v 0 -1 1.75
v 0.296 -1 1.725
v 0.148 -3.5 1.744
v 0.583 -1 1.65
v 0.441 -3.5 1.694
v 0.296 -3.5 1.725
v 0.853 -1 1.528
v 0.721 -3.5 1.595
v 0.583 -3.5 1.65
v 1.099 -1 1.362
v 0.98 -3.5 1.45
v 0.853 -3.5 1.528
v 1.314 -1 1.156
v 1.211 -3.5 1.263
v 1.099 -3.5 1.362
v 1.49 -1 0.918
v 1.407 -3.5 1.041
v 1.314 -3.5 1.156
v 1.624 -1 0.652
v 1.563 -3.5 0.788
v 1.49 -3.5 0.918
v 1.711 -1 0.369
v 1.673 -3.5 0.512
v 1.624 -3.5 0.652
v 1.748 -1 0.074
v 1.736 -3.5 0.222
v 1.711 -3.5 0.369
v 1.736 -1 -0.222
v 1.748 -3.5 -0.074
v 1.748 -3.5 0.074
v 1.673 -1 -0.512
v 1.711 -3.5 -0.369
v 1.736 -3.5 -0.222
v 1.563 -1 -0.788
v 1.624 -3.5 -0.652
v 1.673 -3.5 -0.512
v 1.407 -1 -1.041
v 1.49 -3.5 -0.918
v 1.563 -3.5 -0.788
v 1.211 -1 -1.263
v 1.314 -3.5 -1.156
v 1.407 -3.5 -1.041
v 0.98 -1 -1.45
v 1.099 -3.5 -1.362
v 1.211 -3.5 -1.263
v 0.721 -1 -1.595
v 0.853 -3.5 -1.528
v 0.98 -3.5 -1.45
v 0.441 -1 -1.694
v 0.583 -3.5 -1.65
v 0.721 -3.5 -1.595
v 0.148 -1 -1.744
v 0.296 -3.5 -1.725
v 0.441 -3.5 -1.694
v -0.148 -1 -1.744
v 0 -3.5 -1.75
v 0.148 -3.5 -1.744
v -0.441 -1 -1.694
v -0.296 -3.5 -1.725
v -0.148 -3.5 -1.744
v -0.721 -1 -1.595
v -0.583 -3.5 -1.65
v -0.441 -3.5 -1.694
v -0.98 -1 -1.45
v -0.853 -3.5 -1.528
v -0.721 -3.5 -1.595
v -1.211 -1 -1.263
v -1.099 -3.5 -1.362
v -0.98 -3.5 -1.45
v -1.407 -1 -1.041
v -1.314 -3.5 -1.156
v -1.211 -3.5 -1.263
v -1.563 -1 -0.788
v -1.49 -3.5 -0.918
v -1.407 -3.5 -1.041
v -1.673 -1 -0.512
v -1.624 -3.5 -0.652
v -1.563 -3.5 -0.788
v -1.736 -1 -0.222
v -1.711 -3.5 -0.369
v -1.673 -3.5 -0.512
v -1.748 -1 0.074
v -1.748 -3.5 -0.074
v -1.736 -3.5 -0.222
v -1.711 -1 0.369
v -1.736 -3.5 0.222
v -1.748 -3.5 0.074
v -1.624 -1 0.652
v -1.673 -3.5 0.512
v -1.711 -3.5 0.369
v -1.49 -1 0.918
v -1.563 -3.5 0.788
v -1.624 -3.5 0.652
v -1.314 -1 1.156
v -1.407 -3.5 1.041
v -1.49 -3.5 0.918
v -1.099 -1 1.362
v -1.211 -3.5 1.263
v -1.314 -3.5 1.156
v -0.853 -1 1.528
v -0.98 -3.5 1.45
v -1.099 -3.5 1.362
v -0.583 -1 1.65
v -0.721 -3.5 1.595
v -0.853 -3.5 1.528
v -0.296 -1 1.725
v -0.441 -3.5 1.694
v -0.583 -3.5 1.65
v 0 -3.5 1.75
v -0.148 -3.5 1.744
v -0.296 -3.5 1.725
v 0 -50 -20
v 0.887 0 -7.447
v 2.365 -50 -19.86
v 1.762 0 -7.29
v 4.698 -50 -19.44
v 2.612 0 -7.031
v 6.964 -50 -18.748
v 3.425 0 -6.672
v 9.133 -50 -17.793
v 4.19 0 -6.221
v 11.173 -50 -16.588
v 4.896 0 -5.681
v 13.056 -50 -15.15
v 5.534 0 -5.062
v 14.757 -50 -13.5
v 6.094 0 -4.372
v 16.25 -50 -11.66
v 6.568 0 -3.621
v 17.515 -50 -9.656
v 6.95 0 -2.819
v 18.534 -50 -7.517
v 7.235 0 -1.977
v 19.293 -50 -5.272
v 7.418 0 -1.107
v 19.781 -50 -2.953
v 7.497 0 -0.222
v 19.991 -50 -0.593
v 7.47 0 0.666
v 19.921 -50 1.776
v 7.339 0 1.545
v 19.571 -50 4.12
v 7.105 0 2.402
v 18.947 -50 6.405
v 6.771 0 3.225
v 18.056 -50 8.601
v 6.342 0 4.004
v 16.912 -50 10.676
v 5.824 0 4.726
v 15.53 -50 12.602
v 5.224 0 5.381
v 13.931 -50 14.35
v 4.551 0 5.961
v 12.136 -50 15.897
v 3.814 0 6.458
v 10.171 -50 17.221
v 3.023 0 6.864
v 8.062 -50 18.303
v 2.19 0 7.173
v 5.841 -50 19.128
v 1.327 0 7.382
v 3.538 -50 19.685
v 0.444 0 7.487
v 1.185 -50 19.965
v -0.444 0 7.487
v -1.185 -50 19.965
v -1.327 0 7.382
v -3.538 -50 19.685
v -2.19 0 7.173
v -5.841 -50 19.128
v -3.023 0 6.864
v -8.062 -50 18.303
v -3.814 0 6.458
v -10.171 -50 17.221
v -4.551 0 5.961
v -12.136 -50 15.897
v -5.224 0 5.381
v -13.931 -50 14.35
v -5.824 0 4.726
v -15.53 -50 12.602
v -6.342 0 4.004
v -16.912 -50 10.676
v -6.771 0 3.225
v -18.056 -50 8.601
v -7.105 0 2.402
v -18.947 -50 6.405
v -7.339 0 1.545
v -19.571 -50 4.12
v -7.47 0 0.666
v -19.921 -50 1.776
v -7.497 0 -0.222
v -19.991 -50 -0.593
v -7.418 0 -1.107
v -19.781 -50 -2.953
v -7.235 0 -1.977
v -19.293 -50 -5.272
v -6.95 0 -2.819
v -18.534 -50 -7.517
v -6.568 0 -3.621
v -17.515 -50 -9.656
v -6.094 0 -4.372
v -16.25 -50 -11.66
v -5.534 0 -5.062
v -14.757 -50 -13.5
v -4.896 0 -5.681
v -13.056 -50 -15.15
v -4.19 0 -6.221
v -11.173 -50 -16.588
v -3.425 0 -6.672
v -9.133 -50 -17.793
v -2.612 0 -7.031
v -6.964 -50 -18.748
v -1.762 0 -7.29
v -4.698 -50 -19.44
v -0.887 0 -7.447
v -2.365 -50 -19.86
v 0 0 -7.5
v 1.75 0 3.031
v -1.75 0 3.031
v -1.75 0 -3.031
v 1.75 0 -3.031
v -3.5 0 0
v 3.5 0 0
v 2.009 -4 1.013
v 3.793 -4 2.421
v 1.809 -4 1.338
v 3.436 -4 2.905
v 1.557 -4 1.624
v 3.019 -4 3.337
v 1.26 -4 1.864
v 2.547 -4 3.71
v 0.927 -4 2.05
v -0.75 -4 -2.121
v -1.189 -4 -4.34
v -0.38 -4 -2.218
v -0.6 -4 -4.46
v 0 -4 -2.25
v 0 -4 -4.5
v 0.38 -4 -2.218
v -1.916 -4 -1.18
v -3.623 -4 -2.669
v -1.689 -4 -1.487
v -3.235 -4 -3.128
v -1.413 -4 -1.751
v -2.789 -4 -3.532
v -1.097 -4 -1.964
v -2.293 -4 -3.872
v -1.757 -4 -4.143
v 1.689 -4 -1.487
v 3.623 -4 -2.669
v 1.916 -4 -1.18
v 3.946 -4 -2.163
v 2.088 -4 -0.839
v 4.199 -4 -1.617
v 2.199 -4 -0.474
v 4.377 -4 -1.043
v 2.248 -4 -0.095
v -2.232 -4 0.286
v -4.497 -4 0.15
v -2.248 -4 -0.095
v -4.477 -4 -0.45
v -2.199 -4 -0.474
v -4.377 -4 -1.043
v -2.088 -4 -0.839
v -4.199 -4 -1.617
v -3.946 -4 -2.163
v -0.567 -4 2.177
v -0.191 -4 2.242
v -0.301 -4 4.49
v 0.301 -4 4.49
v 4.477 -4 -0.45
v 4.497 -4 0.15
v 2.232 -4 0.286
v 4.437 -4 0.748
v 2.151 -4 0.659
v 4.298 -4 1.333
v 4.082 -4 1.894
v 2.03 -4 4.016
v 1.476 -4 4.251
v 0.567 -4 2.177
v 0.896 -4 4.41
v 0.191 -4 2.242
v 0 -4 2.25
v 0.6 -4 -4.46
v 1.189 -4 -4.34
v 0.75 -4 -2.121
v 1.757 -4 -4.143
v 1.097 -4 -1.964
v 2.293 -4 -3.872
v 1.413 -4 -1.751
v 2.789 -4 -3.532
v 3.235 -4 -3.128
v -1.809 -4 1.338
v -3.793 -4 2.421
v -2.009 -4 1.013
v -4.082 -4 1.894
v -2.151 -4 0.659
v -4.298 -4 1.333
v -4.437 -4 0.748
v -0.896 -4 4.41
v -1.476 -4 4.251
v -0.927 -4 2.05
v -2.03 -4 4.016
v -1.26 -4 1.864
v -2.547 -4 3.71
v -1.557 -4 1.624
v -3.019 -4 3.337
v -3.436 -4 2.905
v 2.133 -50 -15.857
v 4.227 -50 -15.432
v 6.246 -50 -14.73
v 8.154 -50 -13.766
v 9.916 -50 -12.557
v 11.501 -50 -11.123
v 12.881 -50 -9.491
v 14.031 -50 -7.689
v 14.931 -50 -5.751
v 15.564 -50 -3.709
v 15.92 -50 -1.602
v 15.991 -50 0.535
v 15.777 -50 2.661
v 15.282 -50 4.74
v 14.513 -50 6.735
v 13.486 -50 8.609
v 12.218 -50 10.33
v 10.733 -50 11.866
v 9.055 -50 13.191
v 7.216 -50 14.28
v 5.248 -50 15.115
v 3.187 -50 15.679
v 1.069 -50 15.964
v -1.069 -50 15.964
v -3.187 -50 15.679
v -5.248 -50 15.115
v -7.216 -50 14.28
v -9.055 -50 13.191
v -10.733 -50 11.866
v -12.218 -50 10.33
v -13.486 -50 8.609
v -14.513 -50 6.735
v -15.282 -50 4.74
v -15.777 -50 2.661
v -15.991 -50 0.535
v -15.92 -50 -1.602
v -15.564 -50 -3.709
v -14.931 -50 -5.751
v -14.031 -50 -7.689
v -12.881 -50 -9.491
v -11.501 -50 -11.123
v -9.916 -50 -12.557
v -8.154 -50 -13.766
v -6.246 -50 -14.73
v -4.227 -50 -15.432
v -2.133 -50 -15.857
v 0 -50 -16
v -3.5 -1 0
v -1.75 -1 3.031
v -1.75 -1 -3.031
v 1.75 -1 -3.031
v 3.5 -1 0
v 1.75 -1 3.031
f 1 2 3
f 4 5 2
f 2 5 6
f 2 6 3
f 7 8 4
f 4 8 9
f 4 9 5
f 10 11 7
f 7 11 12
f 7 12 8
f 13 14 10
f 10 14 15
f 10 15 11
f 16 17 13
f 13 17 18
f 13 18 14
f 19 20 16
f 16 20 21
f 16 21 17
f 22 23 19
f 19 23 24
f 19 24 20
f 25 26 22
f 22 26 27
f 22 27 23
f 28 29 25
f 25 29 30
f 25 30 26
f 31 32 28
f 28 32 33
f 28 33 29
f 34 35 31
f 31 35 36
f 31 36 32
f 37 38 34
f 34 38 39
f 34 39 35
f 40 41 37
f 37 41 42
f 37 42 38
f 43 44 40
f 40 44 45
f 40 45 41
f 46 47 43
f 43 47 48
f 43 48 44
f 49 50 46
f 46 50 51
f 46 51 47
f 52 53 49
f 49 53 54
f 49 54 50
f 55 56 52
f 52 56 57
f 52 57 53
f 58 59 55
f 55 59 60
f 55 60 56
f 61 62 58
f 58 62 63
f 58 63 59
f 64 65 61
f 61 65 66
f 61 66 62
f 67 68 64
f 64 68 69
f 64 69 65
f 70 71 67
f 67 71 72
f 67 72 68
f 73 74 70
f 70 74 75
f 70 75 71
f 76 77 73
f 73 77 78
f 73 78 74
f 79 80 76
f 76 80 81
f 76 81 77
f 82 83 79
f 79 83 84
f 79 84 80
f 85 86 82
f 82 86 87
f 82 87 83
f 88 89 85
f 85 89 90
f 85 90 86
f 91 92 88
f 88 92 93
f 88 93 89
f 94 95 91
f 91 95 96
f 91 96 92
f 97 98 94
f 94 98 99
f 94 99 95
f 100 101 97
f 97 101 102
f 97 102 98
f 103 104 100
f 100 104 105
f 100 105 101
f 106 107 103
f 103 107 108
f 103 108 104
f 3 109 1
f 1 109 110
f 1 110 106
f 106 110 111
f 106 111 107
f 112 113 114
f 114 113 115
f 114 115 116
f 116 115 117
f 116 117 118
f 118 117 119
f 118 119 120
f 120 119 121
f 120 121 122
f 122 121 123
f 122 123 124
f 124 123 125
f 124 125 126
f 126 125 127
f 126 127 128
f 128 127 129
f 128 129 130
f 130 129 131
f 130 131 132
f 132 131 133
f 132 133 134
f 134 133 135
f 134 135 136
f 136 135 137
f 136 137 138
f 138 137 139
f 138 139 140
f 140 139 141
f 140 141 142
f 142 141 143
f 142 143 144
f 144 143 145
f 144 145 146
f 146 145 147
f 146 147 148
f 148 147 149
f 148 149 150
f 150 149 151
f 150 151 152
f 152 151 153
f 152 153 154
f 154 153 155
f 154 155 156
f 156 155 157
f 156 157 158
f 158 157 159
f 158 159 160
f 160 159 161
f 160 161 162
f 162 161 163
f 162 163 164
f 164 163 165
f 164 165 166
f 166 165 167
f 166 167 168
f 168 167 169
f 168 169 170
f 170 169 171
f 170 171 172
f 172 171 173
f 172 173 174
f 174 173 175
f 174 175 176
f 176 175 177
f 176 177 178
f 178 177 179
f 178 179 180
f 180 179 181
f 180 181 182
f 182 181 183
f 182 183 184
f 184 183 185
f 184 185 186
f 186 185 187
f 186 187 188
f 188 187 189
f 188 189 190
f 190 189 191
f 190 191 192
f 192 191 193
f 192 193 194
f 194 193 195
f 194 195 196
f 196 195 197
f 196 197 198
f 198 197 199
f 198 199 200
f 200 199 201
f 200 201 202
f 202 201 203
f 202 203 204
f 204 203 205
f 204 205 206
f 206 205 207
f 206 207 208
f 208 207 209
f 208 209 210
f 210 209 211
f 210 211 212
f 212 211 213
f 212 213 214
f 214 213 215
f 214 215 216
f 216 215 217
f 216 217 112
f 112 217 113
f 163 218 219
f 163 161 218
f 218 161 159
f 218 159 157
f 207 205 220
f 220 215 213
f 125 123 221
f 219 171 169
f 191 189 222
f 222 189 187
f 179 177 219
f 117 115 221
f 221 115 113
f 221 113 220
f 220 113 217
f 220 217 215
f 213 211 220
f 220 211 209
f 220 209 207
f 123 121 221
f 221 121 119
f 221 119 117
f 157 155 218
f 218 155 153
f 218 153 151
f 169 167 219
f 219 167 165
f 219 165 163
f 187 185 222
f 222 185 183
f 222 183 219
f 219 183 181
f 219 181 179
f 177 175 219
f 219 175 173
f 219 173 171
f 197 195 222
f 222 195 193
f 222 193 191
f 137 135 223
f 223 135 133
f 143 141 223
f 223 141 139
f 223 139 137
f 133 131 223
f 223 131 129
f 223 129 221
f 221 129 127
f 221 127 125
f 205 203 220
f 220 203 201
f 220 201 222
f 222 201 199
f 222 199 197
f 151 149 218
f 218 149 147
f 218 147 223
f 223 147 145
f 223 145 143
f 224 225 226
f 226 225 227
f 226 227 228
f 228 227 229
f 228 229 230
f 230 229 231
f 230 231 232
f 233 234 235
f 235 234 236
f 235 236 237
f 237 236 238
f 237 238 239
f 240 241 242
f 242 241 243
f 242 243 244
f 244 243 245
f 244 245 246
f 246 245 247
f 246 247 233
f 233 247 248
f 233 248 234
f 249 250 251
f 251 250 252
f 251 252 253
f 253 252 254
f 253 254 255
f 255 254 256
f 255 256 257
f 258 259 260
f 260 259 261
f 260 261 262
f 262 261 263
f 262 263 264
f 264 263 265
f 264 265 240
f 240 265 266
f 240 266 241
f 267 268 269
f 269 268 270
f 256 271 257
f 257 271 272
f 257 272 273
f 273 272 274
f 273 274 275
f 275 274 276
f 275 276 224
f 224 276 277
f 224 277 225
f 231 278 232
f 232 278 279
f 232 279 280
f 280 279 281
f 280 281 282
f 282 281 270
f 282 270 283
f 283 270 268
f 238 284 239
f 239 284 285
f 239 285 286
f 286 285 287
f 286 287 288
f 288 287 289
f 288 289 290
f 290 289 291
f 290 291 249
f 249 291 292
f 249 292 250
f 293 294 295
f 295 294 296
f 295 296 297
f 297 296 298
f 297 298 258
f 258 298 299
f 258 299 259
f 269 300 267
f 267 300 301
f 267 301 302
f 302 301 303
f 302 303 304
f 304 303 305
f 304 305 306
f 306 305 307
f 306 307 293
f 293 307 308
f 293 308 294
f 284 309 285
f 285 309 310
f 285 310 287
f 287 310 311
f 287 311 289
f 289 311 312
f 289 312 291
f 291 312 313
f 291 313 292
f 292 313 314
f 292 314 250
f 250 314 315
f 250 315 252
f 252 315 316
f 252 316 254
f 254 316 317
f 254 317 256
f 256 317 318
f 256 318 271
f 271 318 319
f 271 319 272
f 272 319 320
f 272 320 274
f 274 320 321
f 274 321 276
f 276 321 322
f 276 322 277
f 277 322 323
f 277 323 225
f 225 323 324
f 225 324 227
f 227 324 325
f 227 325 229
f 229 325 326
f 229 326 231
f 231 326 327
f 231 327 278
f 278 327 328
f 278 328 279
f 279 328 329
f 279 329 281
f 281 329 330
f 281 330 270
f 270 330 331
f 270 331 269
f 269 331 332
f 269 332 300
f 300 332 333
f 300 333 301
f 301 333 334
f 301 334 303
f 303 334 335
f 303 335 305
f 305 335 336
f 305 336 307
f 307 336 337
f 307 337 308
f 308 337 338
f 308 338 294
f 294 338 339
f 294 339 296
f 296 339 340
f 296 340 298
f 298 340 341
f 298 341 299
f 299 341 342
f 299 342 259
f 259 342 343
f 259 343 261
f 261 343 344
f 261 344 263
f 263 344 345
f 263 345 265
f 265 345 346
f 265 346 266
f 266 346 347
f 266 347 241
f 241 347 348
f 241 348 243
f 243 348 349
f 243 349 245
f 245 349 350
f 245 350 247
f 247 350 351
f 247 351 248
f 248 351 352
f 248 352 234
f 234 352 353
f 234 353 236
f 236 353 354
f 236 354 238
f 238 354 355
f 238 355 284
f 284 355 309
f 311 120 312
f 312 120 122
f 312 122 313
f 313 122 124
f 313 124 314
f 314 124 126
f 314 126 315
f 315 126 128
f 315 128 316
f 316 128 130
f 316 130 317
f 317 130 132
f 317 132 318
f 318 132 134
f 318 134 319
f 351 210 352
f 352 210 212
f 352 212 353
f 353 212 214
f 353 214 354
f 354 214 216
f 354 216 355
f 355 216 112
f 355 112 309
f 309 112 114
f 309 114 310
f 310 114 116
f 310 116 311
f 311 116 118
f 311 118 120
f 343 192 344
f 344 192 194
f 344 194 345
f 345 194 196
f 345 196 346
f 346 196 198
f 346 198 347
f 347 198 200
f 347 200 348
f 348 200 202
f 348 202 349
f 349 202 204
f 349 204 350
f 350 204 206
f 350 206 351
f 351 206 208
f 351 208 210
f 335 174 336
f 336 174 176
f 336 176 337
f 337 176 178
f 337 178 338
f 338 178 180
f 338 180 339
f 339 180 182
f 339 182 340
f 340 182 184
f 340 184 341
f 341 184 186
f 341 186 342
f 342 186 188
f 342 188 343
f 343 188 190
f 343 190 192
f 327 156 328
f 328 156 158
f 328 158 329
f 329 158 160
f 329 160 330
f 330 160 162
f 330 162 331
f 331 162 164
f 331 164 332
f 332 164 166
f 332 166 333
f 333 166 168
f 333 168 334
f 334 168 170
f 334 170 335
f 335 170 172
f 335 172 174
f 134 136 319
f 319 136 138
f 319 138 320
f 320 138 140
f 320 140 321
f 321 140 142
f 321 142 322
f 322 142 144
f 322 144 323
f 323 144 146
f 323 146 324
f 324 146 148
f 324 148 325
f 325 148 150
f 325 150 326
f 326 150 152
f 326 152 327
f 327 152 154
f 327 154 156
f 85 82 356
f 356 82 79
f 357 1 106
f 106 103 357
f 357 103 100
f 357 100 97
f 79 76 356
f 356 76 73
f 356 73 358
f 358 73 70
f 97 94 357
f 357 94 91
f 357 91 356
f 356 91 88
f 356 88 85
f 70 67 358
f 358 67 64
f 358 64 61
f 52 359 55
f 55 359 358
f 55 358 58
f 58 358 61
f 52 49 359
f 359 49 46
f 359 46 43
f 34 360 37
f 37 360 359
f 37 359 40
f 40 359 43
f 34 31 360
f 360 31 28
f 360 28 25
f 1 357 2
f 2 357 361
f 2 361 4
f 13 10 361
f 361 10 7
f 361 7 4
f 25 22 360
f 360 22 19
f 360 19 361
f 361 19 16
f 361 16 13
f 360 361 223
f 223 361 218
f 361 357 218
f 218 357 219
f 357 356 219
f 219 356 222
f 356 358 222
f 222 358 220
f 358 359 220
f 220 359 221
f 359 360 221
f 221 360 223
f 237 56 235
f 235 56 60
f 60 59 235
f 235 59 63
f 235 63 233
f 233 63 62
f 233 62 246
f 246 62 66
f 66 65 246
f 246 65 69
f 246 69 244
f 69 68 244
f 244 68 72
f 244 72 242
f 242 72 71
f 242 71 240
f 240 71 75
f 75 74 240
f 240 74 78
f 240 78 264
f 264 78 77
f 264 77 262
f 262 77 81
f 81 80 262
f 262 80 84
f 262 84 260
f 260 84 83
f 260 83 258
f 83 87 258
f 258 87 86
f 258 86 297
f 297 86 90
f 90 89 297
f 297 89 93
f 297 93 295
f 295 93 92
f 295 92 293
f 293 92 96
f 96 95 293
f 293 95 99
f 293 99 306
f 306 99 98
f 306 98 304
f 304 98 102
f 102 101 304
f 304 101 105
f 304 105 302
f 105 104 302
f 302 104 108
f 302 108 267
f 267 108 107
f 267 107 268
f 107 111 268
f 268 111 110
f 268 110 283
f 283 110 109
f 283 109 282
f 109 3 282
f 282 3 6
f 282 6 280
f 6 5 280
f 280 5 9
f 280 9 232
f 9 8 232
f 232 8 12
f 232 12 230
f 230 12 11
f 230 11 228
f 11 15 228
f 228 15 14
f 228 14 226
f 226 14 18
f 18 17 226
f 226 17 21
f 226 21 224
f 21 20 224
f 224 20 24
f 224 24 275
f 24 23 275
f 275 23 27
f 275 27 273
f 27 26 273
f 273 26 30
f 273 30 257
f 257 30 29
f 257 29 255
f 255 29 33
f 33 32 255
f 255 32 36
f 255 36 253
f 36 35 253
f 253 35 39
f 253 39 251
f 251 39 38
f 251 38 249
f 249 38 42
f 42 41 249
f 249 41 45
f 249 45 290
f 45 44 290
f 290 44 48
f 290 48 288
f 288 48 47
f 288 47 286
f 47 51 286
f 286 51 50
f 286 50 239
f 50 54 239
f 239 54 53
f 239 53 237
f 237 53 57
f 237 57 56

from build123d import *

# Parameters (mm, degrees)
SKETCH_4_R          = 1.75
CUT_EXTRUDE_1_DEPTH = 10
CUT_EXTRUDE_2_DEPTH = 1
CHAMFER_1_SIZE      = 0.5


with BuildPart() as part:
    # 草图3 → 旋转1 (revolve)
    with BuildSketch(Plane(origin=(0, 0, 0), x_dir=(0, 0, -1), z_dir=(1, 0, 0)), mode=Mode.PRIVATE) as revolve_1_sk:
        Polygon((-7.5, 0), (0, 0), (0, -4), (-4.5, -4), (-16, -50), (-20, -50), align=None)
    revolve(revolve_1_sk.sketch.rotate(Axis((0, 28.450677981, 0), (0, 1, 0)), 180), axis=Axis((0, 28.450677981, 0), (0, 1, 0)))

    # 草图4 → 切除-拉伸1 (cut)
    with BuildSketch(Plane(origin=(0, 0, 0), x_dir=(1, 0, 0), z_dir=(0, 1, 0))):
        with Locations(Location((0, 0, 0), (0, 0, 270))):
            Circle(SKETCH_4_R)
    extrude(amount=-CUT_EXTRUDE_1_DEPTH, mode=Mode.SUBTRACT)

    # 草图5 → 切除-拉伸2 (cut)
    with BuildSketch(Plane(origin=(0, 0, 0), x_dir=(1, 0, 0), z_dir=(0, 1, 0))):
        Polygon((3.5, 0), (1.75, 3.031088913), (-1.75, 3.031088913), (-3.5, 0), (-1.75, -3.031088913), (1.75, -3.031088913), align=None)
    extrude(amount=-CUT_EXTRUDE_2_DEPTH, mode=Mode.SUBTRACT)

    # 倒角1
    chamfer_1_edges = [part.edges().sort_by_distance(p)[0] for p in [
        (0, -4, -1.75),
    ]]
    chamfer(chamfer_1_edges, length=CHAMFER_1_SIZE)


solid = part.part
